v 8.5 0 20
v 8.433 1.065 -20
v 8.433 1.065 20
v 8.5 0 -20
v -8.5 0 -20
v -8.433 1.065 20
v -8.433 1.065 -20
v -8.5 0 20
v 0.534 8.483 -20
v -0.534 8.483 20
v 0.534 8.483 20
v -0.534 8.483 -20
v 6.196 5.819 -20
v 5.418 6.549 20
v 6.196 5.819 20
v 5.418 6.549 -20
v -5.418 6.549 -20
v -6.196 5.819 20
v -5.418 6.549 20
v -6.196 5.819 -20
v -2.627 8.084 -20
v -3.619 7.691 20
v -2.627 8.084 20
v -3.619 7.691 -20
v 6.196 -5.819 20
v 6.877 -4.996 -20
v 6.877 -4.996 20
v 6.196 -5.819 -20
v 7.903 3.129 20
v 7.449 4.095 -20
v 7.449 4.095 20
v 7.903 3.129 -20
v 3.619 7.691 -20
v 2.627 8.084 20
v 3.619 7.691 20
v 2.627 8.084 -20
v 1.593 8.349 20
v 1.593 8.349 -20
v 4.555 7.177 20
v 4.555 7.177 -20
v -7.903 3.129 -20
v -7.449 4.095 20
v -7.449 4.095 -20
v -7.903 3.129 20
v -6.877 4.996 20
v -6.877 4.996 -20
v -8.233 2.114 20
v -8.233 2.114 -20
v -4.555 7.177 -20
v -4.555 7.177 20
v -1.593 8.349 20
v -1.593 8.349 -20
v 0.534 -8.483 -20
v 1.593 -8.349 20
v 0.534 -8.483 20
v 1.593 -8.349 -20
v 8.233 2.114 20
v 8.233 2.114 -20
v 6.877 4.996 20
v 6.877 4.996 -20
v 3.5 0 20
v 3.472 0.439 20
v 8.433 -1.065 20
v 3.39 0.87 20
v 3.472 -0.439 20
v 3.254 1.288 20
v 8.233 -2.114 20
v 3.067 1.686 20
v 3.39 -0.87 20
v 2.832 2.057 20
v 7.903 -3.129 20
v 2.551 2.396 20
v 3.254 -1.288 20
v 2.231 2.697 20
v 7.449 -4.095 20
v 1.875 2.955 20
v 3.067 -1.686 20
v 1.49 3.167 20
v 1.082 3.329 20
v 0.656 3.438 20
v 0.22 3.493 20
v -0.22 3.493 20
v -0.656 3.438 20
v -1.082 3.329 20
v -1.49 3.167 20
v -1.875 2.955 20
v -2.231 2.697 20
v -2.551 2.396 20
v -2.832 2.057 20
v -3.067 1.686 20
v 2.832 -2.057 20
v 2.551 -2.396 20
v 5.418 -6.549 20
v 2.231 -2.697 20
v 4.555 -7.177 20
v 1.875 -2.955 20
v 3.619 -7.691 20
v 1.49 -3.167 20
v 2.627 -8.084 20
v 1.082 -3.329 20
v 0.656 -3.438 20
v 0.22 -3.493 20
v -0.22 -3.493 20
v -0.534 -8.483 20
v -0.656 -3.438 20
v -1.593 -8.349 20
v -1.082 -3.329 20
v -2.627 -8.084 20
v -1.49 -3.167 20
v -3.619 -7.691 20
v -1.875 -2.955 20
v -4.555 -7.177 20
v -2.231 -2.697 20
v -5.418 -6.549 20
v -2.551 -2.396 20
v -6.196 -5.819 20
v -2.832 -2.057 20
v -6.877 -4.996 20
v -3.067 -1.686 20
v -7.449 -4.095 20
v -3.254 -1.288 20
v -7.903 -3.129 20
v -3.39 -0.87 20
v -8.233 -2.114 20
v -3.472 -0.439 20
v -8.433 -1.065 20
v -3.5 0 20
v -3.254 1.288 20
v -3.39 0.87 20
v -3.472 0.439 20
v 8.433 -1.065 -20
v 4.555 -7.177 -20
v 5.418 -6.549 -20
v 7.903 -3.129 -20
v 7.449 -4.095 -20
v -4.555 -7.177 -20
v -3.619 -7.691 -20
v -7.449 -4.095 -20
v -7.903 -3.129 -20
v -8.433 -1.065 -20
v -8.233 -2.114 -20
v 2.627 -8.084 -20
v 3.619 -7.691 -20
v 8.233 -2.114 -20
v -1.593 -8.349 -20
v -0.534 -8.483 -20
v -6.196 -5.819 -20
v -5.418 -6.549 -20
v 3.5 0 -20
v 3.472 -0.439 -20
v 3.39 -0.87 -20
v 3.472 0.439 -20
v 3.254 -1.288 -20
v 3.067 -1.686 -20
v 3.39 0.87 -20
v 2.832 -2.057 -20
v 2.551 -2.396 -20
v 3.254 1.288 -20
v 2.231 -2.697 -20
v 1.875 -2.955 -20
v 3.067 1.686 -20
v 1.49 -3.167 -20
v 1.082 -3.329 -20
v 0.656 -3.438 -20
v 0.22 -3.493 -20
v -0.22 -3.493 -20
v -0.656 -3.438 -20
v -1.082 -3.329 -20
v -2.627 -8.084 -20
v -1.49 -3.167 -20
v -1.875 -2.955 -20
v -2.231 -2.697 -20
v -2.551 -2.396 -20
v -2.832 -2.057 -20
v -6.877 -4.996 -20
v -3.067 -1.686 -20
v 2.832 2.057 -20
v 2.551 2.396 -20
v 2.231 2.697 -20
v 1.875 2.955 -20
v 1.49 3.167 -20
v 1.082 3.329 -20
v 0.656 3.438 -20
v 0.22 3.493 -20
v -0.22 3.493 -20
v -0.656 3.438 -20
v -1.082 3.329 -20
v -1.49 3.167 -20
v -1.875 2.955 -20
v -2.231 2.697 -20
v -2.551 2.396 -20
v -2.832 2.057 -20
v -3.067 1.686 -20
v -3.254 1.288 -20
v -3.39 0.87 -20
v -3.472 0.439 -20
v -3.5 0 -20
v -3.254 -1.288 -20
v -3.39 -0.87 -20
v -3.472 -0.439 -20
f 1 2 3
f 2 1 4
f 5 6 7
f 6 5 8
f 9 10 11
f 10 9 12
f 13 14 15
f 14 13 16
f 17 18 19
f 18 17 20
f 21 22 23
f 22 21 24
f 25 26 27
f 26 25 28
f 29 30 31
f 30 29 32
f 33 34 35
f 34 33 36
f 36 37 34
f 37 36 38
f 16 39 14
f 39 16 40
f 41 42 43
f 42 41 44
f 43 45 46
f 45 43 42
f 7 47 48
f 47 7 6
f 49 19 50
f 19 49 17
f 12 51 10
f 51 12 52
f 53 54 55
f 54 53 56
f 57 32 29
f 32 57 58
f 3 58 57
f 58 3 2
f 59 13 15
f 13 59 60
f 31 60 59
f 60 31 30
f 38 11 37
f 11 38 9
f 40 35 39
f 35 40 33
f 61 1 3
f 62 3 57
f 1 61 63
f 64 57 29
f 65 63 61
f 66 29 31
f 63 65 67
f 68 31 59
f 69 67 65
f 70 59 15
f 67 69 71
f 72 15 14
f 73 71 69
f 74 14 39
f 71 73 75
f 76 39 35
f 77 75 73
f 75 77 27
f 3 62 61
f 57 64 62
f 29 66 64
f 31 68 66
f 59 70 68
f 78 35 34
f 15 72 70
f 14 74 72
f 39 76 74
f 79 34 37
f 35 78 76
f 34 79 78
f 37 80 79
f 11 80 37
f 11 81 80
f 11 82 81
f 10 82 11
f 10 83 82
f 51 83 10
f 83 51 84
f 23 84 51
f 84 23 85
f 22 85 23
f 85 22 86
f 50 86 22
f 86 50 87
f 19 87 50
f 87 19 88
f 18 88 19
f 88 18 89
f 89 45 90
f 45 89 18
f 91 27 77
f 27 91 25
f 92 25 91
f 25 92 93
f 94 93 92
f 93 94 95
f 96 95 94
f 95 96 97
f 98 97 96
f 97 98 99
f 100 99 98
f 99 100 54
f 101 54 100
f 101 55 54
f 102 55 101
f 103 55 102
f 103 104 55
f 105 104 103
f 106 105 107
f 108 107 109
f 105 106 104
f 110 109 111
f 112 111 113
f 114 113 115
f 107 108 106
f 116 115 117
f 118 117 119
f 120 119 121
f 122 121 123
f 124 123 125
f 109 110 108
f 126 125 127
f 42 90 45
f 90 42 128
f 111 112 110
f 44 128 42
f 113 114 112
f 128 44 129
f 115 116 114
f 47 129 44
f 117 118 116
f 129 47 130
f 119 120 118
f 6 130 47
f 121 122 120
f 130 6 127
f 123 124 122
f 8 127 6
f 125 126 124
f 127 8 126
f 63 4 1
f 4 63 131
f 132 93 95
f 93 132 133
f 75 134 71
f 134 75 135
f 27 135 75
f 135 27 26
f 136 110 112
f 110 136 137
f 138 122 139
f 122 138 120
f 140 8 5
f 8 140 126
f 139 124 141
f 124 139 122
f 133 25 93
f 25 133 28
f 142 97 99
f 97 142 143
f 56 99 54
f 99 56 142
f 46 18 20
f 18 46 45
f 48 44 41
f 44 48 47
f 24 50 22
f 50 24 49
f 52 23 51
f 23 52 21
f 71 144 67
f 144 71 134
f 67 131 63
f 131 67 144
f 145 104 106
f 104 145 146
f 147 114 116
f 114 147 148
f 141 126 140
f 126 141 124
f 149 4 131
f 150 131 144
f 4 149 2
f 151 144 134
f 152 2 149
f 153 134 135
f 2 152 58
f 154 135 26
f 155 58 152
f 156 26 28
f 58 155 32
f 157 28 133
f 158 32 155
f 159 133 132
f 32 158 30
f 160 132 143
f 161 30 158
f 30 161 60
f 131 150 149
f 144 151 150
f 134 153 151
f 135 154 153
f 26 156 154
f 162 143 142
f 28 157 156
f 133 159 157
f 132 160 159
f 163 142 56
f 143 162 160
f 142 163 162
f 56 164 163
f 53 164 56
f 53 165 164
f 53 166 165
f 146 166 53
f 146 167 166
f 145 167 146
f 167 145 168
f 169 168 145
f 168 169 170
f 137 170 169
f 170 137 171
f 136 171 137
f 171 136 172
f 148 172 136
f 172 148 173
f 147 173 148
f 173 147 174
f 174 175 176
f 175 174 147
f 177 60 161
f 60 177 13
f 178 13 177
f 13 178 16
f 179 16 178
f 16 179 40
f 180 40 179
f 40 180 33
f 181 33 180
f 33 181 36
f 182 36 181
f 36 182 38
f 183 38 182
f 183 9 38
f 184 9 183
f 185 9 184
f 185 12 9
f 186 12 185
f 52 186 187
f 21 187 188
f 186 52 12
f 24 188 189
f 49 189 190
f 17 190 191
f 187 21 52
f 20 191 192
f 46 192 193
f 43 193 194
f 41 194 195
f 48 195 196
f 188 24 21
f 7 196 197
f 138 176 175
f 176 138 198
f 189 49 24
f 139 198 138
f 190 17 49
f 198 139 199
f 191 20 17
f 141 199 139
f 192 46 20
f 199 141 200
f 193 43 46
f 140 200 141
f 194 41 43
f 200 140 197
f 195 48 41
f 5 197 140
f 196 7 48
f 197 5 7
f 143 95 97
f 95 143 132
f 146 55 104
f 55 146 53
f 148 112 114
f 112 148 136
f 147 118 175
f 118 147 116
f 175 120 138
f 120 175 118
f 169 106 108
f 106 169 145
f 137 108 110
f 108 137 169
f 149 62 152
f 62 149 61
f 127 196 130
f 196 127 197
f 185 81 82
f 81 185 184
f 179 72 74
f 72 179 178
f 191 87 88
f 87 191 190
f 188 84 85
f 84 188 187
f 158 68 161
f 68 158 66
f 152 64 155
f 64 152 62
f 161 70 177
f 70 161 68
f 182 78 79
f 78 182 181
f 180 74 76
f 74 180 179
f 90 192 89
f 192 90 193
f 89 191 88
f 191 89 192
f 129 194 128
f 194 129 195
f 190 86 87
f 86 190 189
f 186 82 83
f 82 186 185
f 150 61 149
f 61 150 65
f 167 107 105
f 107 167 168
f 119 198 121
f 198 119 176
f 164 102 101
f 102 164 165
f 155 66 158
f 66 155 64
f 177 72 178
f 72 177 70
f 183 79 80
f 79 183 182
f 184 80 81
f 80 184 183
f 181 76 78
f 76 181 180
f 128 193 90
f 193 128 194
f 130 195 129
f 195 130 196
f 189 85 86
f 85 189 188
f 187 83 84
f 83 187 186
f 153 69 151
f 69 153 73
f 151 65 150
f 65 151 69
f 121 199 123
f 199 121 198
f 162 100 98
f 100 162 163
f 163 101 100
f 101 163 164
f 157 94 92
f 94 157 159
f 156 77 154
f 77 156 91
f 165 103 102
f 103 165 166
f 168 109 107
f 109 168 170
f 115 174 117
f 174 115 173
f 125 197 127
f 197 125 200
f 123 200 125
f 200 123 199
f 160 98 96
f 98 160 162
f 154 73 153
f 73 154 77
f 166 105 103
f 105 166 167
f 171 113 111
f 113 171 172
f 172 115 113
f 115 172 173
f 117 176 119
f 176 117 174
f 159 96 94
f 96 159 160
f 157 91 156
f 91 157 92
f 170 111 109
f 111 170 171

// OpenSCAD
$fn = 50;


difference() {
	union() {
		translate(v = [0, 0, -20.0000000000]) {
			cylinder(h = 40, r = 8.5000000000);
		}
	}
	union() {
		translate(v = [0, 0, -100.0000000000]) {
			cylinder(h = 200, r = 3.5000000000);
		}
	}
}
